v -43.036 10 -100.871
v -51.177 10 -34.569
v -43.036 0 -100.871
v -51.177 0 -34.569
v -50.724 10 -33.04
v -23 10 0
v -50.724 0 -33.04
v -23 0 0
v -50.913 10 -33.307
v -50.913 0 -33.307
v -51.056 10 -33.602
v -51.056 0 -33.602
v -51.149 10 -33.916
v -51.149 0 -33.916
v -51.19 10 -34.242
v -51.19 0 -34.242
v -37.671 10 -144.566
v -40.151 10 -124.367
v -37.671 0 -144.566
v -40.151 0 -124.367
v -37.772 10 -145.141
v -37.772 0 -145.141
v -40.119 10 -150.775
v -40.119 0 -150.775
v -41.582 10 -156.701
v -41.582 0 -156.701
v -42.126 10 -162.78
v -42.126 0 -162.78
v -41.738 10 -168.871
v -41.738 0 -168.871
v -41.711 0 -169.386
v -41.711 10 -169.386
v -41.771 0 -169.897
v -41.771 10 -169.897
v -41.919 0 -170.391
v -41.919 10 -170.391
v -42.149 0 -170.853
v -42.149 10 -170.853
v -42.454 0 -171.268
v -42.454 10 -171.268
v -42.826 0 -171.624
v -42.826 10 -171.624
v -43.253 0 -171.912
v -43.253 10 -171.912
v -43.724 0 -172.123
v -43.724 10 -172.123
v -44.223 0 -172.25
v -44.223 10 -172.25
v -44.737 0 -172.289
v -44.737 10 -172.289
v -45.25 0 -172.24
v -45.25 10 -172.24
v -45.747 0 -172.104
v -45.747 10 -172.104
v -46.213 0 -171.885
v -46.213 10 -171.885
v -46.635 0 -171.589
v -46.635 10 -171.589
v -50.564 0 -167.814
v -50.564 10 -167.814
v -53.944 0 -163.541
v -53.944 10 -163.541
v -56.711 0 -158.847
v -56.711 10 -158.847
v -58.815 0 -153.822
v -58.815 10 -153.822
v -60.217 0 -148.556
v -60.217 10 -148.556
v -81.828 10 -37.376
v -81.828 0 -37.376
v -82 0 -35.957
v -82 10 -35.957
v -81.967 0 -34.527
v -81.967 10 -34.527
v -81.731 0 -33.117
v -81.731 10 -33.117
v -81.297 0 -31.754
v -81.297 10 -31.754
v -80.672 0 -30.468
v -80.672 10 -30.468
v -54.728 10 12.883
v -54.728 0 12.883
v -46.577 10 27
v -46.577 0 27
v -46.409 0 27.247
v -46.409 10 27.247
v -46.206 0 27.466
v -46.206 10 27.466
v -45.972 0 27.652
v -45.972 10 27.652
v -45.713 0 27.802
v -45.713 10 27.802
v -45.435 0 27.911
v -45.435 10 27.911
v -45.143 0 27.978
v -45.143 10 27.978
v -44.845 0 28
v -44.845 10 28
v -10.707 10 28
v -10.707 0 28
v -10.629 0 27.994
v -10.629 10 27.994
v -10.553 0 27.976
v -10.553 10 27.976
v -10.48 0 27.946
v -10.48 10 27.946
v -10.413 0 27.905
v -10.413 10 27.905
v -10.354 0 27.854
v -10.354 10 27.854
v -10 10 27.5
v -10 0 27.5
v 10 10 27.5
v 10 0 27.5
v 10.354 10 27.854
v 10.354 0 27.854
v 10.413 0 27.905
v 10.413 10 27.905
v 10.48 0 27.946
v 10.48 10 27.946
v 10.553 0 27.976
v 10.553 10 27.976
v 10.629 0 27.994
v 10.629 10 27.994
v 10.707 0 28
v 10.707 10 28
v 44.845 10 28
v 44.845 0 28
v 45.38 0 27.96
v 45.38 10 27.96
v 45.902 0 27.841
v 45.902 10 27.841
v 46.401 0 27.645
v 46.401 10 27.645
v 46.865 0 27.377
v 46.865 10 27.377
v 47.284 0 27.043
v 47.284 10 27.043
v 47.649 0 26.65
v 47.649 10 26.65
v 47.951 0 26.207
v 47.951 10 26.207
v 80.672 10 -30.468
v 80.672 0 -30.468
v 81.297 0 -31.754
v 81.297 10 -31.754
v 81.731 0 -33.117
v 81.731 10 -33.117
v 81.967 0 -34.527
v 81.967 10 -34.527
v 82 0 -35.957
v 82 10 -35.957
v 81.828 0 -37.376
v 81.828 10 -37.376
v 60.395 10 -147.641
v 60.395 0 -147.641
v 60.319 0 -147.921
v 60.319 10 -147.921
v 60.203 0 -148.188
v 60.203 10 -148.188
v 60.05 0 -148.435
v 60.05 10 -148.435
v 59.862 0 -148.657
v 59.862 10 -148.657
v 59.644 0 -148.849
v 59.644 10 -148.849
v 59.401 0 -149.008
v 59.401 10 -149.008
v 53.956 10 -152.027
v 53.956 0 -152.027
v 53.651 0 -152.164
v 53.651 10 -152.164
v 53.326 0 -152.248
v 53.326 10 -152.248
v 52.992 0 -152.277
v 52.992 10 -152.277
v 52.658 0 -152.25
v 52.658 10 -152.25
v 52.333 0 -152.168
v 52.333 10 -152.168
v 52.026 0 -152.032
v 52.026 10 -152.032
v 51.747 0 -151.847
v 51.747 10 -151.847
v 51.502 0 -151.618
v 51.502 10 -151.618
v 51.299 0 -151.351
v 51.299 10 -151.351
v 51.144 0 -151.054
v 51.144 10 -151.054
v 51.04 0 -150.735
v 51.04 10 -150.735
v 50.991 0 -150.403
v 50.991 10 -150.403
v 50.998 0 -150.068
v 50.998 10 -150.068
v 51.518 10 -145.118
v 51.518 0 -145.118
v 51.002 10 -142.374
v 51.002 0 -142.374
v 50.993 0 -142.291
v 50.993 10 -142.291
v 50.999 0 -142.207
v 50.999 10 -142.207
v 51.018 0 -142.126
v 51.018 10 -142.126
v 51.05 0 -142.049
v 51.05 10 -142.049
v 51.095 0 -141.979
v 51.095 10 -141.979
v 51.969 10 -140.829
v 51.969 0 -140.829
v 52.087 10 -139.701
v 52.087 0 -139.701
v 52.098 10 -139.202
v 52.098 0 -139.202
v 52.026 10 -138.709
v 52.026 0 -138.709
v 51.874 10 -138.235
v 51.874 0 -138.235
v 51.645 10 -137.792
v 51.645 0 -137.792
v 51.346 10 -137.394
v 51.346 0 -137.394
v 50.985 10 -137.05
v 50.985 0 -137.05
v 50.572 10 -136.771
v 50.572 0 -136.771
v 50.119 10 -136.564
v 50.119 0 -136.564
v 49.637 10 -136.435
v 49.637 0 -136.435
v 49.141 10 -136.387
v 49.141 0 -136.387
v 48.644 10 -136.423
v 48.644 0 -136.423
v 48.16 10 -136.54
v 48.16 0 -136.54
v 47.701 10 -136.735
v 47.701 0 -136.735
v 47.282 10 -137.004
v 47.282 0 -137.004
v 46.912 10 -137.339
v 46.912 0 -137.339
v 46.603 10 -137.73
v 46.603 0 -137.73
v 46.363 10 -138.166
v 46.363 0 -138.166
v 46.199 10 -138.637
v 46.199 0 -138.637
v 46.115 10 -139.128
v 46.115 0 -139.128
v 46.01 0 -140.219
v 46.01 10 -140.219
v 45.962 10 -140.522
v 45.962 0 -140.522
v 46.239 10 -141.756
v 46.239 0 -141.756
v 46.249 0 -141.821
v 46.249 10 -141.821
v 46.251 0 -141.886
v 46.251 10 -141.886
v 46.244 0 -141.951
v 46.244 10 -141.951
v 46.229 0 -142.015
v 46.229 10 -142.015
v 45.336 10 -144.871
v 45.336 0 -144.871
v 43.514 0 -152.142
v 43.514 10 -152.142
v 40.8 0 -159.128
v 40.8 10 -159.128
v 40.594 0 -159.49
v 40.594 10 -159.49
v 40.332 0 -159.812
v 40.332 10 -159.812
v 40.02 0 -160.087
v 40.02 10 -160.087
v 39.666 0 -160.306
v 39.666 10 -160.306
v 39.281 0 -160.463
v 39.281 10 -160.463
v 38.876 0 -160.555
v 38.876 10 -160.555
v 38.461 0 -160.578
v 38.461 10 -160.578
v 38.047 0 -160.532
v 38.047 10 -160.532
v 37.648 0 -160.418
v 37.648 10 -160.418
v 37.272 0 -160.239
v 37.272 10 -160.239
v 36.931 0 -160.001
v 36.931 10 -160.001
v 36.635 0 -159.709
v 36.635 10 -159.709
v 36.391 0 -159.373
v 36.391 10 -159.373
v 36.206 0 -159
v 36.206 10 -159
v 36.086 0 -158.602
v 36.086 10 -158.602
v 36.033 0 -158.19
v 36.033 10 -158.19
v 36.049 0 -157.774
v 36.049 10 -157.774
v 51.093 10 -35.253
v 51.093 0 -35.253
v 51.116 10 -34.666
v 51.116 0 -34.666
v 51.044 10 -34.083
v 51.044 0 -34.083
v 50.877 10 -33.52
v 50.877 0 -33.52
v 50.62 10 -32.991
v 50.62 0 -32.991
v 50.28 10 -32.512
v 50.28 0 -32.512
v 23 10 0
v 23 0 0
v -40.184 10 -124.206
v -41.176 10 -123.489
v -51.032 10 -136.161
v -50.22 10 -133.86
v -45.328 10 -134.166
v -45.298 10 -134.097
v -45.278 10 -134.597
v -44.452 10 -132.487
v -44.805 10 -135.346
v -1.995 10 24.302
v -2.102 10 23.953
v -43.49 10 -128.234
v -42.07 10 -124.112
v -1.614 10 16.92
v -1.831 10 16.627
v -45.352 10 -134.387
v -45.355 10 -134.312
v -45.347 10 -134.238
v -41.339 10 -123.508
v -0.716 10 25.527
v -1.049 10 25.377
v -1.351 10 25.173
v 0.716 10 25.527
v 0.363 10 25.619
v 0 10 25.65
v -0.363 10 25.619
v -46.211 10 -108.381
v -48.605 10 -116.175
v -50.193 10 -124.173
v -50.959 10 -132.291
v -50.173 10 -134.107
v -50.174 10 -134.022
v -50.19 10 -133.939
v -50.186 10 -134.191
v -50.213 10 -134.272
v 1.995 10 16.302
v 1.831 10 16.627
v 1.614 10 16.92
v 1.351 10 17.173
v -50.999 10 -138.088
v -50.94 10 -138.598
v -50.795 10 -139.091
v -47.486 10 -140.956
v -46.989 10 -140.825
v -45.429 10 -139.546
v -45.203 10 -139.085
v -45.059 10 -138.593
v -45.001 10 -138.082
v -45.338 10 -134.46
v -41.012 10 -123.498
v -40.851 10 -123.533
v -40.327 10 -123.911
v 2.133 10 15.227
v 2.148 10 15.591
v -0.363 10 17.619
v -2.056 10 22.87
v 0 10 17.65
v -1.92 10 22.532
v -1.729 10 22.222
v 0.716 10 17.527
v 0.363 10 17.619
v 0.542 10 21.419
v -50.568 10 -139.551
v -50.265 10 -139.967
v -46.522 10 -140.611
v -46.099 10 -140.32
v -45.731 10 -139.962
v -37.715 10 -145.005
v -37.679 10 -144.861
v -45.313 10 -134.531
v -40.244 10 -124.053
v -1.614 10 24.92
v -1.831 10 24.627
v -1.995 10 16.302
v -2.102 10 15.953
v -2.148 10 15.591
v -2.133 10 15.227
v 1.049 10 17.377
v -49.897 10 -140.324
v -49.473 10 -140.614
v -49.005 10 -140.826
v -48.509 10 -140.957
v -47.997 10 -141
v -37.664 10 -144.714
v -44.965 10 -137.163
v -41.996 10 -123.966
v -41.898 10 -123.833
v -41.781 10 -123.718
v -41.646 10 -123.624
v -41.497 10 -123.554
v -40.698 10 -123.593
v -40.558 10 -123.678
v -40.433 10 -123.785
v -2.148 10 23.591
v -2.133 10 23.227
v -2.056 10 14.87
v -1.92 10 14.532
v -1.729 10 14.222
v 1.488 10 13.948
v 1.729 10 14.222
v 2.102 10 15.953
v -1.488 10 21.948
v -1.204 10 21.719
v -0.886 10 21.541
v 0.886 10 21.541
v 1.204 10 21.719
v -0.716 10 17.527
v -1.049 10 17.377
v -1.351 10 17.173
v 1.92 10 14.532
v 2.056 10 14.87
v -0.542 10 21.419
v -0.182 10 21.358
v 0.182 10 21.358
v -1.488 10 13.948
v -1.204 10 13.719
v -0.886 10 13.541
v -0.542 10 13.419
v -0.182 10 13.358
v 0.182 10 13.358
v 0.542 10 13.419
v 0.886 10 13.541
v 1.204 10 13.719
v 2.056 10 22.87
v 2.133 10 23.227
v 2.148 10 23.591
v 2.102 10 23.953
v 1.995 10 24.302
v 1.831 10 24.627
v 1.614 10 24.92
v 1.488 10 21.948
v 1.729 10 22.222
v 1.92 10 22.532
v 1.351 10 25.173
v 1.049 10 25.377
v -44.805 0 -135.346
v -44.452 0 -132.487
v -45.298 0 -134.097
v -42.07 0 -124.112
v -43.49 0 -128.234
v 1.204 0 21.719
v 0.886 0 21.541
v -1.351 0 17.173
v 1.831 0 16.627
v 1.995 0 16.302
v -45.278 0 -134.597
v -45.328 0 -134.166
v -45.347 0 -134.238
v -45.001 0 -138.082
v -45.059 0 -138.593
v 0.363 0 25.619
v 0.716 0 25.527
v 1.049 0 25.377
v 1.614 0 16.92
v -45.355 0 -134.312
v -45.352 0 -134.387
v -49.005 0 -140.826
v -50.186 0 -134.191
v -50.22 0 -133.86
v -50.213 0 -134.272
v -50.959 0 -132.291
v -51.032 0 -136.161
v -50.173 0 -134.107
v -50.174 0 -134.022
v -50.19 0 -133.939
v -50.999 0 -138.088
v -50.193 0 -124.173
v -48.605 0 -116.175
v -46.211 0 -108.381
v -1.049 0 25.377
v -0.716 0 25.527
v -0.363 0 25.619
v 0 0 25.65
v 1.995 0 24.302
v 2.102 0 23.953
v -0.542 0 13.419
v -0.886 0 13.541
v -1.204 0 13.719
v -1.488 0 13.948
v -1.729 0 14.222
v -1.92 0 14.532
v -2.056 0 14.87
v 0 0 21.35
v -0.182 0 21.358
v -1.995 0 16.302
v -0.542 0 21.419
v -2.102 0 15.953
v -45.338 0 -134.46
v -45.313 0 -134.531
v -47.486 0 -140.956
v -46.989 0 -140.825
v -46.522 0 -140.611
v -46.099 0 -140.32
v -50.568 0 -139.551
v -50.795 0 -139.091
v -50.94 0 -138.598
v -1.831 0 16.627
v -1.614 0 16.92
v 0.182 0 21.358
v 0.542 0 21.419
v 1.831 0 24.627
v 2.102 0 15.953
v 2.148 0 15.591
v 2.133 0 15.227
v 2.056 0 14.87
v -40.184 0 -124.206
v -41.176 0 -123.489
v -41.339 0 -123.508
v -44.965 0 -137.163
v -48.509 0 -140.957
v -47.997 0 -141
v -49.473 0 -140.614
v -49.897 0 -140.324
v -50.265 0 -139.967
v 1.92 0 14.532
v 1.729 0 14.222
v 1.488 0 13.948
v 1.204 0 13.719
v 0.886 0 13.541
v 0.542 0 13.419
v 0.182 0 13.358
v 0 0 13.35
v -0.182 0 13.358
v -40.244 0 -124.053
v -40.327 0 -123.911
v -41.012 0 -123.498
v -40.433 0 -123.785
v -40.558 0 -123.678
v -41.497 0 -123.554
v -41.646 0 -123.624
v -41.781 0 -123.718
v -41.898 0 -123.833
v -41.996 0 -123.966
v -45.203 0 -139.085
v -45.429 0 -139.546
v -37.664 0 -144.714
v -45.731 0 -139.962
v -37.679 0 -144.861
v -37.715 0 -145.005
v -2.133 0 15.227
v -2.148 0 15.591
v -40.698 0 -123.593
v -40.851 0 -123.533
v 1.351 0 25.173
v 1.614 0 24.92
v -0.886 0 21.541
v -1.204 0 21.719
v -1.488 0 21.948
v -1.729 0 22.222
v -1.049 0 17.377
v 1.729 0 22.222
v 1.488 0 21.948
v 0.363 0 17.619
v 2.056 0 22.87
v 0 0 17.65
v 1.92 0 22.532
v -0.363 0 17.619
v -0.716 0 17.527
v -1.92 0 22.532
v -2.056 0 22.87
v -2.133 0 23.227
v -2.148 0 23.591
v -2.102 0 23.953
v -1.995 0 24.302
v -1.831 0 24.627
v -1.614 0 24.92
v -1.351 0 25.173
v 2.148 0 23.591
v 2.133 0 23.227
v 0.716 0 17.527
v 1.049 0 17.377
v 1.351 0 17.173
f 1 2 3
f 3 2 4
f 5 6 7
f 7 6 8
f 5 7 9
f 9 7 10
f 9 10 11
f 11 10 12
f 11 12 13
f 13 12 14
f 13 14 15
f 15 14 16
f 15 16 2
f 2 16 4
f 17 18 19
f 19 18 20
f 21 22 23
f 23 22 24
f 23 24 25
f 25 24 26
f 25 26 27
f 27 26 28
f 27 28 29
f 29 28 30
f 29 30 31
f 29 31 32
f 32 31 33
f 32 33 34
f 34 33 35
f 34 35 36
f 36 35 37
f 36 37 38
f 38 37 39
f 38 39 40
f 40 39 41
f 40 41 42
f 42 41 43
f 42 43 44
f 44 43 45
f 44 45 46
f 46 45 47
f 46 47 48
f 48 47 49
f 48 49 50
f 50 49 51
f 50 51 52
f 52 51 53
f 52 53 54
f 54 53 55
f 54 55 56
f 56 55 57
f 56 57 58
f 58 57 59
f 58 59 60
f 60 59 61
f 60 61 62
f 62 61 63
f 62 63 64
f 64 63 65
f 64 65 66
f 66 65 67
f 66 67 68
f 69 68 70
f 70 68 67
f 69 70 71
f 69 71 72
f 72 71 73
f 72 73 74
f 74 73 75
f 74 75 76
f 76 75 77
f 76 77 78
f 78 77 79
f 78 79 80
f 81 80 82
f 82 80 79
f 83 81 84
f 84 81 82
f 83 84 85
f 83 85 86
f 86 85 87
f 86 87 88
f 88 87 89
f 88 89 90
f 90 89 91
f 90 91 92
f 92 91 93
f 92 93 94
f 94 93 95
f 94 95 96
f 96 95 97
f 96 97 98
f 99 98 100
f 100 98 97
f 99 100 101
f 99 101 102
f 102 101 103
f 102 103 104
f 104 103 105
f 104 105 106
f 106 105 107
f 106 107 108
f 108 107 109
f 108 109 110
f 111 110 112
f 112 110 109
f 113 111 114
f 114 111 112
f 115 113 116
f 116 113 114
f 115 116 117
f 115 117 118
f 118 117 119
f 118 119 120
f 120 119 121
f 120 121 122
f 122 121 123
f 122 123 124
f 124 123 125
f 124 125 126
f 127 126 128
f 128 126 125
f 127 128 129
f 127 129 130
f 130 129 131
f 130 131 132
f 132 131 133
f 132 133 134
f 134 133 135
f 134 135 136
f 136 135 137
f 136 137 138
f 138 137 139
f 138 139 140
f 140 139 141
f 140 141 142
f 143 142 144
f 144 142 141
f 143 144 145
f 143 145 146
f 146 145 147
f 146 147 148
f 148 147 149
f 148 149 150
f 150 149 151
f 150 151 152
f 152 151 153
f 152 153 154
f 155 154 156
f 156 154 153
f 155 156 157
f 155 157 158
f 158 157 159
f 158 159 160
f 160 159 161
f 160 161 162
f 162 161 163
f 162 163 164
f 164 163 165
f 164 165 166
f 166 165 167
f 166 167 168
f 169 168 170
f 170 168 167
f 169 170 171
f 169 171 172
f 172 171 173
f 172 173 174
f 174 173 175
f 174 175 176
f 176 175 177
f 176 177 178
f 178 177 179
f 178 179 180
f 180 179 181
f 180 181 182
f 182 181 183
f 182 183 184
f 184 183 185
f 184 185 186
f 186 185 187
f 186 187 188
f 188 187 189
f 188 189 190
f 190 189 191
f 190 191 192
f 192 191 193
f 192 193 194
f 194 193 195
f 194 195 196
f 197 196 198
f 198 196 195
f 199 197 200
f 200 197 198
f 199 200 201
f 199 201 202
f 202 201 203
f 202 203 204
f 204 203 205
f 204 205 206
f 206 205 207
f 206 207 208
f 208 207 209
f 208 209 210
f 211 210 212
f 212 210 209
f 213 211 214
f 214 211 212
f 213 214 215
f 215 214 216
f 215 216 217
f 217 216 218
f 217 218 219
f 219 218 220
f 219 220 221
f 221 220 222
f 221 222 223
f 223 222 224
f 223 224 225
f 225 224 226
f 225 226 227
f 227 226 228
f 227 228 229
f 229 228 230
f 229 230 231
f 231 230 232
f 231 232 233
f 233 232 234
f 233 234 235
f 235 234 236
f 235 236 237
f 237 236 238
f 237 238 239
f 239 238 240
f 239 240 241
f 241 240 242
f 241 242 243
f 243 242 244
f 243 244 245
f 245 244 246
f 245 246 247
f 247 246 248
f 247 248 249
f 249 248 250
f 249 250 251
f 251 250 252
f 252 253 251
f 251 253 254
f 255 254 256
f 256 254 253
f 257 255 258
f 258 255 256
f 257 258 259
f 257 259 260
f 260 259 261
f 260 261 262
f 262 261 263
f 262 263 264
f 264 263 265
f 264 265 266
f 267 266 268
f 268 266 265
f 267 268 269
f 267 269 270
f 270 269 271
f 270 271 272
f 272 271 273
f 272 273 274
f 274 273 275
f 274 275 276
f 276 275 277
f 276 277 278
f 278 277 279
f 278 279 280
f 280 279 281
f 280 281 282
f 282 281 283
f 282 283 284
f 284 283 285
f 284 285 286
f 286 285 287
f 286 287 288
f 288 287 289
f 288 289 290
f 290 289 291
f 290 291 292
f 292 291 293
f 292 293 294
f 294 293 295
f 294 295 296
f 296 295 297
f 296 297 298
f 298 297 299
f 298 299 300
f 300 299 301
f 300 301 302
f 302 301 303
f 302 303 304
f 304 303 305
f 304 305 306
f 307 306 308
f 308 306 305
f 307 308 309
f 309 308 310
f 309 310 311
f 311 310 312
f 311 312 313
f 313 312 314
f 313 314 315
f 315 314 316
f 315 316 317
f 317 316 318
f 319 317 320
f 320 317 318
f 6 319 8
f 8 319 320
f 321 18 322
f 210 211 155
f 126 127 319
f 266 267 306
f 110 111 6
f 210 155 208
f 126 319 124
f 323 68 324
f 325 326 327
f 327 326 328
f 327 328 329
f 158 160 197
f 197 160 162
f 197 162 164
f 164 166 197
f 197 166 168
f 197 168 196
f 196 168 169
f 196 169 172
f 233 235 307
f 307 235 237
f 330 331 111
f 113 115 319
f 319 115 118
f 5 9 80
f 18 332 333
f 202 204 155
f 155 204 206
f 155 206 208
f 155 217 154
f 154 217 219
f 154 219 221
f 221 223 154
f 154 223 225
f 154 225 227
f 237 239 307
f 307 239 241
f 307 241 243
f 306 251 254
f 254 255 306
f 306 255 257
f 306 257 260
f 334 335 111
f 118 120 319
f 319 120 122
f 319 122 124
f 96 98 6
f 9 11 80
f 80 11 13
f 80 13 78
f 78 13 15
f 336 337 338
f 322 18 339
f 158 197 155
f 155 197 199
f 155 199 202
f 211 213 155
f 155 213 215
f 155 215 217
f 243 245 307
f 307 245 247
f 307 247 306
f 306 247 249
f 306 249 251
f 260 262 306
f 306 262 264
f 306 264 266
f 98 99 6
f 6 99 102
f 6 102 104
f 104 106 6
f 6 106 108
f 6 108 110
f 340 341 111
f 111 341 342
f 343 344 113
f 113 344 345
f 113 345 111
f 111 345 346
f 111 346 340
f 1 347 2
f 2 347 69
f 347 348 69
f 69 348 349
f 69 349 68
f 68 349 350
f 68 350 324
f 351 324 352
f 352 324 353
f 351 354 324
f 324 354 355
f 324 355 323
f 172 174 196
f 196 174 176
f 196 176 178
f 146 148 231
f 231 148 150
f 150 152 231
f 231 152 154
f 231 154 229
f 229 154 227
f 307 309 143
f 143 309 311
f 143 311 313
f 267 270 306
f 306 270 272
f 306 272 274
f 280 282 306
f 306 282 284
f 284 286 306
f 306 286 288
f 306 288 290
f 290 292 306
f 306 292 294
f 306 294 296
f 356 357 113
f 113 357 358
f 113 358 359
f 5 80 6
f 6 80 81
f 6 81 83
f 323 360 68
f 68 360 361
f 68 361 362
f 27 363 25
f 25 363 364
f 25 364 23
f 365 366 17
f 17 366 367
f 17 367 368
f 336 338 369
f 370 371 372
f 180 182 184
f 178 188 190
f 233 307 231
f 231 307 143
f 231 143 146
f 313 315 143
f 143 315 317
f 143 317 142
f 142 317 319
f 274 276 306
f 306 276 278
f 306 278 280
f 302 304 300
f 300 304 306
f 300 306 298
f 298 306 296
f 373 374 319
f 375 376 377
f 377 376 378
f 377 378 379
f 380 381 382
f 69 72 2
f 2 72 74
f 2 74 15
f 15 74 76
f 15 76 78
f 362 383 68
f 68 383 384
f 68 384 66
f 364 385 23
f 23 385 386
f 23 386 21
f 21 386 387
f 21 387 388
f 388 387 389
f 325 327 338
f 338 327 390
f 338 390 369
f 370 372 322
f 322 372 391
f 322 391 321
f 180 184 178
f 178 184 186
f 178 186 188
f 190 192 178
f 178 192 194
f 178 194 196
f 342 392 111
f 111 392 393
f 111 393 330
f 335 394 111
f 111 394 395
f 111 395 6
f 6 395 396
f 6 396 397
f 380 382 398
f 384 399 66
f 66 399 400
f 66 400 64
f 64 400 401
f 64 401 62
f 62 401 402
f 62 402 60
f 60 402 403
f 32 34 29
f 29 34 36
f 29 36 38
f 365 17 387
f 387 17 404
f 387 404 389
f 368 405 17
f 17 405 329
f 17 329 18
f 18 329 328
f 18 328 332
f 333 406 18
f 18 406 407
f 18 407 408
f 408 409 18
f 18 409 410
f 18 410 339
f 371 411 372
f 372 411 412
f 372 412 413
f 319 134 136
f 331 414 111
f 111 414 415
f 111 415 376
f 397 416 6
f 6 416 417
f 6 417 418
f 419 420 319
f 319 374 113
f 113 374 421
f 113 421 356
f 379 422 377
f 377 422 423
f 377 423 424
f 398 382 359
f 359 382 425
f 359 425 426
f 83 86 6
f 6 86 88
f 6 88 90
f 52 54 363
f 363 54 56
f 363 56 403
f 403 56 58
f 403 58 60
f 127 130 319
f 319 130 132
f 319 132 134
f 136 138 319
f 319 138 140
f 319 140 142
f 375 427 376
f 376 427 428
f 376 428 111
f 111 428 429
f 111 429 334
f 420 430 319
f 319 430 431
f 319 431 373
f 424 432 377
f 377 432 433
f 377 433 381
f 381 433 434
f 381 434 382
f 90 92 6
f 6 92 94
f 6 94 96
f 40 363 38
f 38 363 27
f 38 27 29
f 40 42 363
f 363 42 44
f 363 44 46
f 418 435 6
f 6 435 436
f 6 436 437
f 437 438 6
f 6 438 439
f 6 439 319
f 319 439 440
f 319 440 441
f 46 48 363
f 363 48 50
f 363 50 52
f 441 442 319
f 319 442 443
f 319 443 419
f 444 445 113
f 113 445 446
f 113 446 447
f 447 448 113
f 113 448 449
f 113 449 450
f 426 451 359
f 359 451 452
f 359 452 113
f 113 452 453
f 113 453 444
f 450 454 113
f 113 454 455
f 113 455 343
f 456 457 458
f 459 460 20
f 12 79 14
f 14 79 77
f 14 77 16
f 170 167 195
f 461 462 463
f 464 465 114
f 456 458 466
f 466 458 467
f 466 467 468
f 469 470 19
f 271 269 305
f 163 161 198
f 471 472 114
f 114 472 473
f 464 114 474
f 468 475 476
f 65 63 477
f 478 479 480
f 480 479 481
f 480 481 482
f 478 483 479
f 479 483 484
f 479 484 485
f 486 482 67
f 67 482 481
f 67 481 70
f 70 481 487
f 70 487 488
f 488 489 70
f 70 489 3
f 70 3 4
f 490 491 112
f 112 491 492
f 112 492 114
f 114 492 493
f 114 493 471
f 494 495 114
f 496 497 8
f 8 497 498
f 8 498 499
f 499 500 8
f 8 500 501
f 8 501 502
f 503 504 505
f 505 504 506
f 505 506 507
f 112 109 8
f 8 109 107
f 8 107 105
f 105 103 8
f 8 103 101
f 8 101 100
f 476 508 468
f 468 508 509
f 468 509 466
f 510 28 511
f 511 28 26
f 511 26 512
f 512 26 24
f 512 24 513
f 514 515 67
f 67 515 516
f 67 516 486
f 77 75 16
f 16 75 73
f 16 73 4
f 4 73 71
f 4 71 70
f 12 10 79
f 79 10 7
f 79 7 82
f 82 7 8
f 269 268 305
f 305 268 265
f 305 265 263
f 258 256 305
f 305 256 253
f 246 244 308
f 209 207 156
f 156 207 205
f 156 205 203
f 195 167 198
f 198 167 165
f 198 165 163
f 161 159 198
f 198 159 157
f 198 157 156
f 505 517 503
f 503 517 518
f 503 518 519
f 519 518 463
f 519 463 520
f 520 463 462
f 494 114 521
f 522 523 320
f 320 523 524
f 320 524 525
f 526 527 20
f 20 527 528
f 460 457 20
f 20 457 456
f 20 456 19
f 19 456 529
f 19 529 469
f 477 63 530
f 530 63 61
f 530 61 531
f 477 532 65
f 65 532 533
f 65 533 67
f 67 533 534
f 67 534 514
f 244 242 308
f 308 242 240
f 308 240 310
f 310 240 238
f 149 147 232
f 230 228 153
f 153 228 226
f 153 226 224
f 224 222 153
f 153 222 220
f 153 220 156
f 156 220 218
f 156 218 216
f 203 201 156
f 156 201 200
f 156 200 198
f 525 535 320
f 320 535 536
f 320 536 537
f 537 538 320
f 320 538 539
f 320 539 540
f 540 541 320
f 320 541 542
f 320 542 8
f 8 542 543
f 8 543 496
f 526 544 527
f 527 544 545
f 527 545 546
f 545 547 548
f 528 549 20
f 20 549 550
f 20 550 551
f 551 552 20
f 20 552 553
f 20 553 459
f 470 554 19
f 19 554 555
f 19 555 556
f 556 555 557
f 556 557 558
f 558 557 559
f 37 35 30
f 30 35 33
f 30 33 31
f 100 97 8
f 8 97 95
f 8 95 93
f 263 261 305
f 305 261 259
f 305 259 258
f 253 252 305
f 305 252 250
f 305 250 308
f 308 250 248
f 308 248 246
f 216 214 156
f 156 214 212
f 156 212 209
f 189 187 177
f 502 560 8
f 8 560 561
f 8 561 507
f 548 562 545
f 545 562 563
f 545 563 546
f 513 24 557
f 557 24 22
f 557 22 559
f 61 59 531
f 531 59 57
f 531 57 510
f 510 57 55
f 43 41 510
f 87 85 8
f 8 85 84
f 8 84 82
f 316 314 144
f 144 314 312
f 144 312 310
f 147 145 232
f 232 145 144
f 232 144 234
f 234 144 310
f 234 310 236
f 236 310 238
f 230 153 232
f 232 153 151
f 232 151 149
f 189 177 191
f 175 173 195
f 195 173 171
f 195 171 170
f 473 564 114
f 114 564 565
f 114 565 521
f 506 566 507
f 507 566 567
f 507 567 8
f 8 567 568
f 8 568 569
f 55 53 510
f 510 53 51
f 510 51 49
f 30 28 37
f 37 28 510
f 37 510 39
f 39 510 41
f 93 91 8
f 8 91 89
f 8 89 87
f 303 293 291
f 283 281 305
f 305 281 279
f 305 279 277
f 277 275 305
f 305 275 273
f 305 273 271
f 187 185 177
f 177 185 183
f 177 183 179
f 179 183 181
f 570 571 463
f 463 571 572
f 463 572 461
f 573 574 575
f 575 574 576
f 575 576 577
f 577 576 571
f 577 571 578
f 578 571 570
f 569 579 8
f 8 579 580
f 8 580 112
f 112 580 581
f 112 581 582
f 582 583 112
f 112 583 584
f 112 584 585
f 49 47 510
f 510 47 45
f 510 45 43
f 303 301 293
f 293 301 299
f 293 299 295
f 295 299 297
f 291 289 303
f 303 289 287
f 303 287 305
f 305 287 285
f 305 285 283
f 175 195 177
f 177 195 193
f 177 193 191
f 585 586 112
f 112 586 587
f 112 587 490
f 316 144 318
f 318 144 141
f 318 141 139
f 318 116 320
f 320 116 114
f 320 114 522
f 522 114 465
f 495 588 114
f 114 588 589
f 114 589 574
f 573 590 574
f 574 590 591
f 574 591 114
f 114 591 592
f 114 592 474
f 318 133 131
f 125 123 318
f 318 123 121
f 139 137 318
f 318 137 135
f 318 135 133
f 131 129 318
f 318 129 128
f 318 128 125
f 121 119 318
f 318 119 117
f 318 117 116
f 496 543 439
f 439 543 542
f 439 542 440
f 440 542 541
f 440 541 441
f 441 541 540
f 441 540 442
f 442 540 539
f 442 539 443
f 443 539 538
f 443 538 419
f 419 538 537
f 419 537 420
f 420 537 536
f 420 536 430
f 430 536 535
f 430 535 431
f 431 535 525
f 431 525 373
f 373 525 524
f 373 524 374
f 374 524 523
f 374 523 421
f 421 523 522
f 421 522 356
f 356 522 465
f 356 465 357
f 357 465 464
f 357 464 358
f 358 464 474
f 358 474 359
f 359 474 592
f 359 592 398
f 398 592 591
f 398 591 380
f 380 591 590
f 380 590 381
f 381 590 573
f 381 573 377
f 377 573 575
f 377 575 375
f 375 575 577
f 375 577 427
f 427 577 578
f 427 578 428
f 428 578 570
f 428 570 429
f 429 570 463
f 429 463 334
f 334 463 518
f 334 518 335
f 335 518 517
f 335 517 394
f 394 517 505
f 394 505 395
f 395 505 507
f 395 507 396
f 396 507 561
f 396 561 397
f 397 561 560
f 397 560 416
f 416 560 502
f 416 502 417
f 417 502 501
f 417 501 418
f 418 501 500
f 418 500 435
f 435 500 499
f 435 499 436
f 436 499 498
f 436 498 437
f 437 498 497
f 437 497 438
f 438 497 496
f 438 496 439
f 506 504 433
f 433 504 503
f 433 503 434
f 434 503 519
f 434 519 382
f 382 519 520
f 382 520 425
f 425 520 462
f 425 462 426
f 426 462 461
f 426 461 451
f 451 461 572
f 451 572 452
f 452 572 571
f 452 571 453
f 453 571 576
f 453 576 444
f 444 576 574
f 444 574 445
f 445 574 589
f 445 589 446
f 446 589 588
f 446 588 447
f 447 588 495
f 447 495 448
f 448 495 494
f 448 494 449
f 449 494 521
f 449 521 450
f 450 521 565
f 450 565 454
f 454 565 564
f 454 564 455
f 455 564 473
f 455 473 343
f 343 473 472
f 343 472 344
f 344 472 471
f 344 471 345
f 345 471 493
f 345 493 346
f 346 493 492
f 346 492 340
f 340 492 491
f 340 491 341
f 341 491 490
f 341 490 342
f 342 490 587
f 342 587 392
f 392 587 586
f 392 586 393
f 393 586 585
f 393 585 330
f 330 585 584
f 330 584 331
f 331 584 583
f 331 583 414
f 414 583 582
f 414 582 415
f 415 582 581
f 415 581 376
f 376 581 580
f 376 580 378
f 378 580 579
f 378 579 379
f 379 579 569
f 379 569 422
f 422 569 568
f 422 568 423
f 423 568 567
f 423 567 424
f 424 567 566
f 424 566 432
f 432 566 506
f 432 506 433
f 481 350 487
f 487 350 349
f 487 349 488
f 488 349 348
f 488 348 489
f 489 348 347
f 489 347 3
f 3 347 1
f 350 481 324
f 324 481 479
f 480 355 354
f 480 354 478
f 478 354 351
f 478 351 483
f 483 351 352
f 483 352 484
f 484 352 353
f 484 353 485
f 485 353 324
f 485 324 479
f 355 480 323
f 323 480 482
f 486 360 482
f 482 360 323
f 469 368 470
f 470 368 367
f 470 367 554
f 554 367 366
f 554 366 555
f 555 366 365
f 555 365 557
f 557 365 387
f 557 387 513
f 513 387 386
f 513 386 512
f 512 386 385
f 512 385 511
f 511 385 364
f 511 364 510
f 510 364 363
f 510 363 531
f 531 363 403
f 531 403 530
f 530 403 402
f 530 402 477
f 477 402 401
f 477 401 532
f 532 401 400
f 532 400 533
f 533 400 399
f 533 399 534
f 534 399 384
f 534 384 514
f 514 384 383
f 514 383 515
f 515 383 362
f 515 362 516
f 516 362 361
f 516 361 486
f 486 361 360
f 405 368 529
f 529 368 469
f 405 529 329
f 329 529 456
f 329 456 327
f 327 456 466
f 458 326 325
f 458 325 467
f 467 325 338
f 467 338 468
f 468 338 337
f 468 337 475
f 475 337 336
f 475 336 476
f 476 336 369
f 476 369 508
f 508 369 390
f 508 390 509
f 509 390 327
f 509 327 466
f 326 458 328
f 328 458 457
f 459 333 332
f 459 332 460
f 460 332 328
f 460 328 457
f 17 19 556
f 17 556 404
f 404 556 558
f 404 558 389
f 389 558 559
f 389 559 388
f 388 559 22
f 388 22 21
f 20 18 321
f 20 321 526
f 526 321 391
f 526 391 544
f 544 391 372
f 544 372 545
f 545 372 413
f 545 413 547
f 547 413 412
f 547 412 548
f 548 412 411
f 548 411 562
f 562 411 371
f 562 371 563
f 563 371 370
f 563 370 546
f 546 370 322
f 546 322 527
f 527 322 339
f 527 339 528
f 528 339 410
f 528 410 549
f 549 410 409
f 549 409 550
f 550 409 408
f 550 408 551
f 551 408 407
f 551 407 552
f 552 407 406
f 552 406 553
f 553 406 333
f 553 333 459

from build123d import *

# Parameters (mm, degrees)
EXTRUDE_1_DEPTH     = 10
CUT_EXTRUDE_1_REACH = 193.075
SKETCH_2_R          = 2.15
FILLET_1_R          = 1


with BuildPart() as part:
    # 草图1 → 凸台-拉伸1 (new body)
    with BuildSketch(Plane(origin=(0, 0, 0), x_dir=(1, 0, 0), z_dir=(0, 1, 0))):
        with BuildLine():
            Line((-23, 0), (23, 0))
            Line((23, 0), (50.280437597, 32.511559514))
            ThreePointArc((50.280437597, 32.511559514), (50.971701439, 33.798064087), (51.092639409, 35.25350688))
            Line((51.092639409, 35.25350688), (36.048986901, 157.774224452))
            ThreePointArc((36.048986901, 157.774224452), (37.845160212, 160.483167311), (40.799539436, 159.128083042))
            ThreePointArc((40.799539436, 159.128083042), (43.514050375, 152.141566893), (45.33631399, 144.871124481))
            Line((45.33631399, 144.871124481), (46.228669547, 142.01495601))
            ThreePointArc((46.228669547, 142.01495601), (46.250999528, 141.886354071), (46.239284003, 141.756354712))
            Line((46.239284003, 141.756354712), (45.962164319, 140.52161209))
            Line((45.962164319, 140.52161209), (46.010409332, 140.218889241))
            ThreePointArc((46.010409332, 140.218889241), (46.065188715, 139.673724891), (46.11498752, 139.128083042))
            ThreePointArc((46.11498752, 139.128083042), (49.390100294, 136.400799361), (52.087350199, 139.700690708))
            Line((52.087350199, 139.700690708), (51.968804209, 140.828580455))
            Line((51.968804209, 140.828580455), (51.095150293, 141.978953599))
            ThreePointArc((51.095150293, 141.978953599), (51.00671283, 142.166476528), (51.001947429, 142.37375249))
            Line((51.001947429, 142.37375249), (51.517960099, 145.118075635))
            Line((51.517960099, 145.118075635), (50.997668008, 150.068324212))
            ThreePointArc((50.997668008, 150.068324212), (51.882837828, 151.945152782), (53.956331039, 152.026620552))
            Line((53.956331039, 152.026620552), (59.401206432, 149.008476838))
            ThreePointArc((59.401206432, 149.008476838), (60.04962118, 148.434807928), (60.394841558, 147.640855414))
            Line((60.394841558, 147.640855414), (81.828137025, 37.376109146))
            ThreePointArc((81.828137025, 37.376109146), (81.874721206, 33.817543133), (80.672119228, 30.468019192))
            Line((80.672119228, 30.468019192), (47.950739183, -26.207073541))
            ThreePointArc((47.950739183, -26.207073541), (46.63822592, -27.519586803), (44.845299462, -28))
            Line((44.845299462, -28), (10.707106781, -28))
            ThreePointArc((10.707106781, -28), (10.515765065, -27.961939766), (10.353553391, -27.853553391))
            Line((10.353553391, -27.853553391), (10, -27.5))
            Line((10, -27.5), (-10, -27.5))
            Line((-10, -27.5), (-10.353553391, -27.853553391))
            ThreePointArc((-10.353553391, -27.853553391), (-10.515765065, -27.961939766), (-10.707106781, -28))
            Line((-10.707106781, -28), (-44.845299462, -28))
            ThreePointArc((-44.845299462, -28), (-45.845299462, -27.732050808), (-46.577350269, -27))
            Line((-46.577350269, -27), (-54.72793721, -12.882769307))
            Line((-54.72793721, -12.882769307), (-80.672119228, 30.468019192))
            ThreePointArc((-80.672119228, 30.468019192), (-81.874721206, 33.817543133), (-81.828137025, 37.376109146))
            Line((-81.828137025, 37.376109146), (-60.216890167, 148.556335961))
            ThreePointArc((-60.216890167, 148.556335961), (-55.407693084, 161.241250242), (-46.635305706, 171.589228142))
            ThreePointArc((-46.635305706, 171.589228142), (-43.253111024, 171.912359616), (-41.738335903, 168.871124481))
            ThreePointArc((-41.738335903, 168.871124481), (-41.556322934, 156.551185491), (-37.633288365, 144.871124481))
            Line((-37.633288365, 144.871124481), (-51.176674229, 34.569098196))
            ThreePointArc((-51.176674229, 34.569098196), (-51.109221395, 33.75732882), (-50.723670812, 33.03978429))
            Line((-50.723670812, 33.03978429), (-23, 0))
        make_face()
    extrude(amount=EXTRUDE_1_DEPTH)

    # 草图2 → 切除-拉伸1 (cut, up to next)
    with BuildSketch(Plane(origin=(0, 10, 0), x_dir=(1, 0, 0), z_dir=(0, 1, 0)), mode=Mode.PRIVATE) as cut_extrude_1_sk1:
        with Locations(Location((0, -23.5, 0), (0, 0, 270))):
            Circle(SKETCH_2_R)
    cut_extrude_1_tool1 = extrude(cut_extrude_1_sk1.sketch, amount=-CUT_EXTRUDE_1_REACH, mode=Mode.PRIVATE) & part.part
    # 草图2 → 切除-拉伸1 (cut, up to next)
    with BuildSketch(Plane(origin=(0, 10, 0), x_dir=(1, 0, 0), z_dir=(0, 1, 0)), mode=Mode.PRIVATE) as cut_extrude_1_sk2:
        with Locations(Location((0, -15.5, 0), (0, 0, 270))):
            Circle(SKETCH_2_R)
    cut_extrude_1_tool2 = extrude(cut_extrude_1_sk2.sketch, amount=-CUT_EXTRUDE_1_REACH, mode=Mode.PRIVATE) & part.part
    # 草图2 → 切除-拉伸1 (cut, up to next)
    with BuildSketch(Plane(origin=(0, 10, 0), x_dir=(1, 0, 0), z_dir=(0, 1, 0)), mode=Mode.PRIVATE) as cut_extrude_1_sk3:
        with BuildLine():
            Line((-44.965311668, 137.162976975), (-44.804514377, 135.345756555))
            Line((-44.804514377, 135.345756555), (-45.277917872, 134.596824083))
            ThreePointArc((-45.277917872, 134.596824083), (-45.354871903, 134.349709989), (-45.297959002, 134.097225891))
            Line((-45.297959002, 134.097225891), (-44.452214101, 132.486513242))
            ThreePointArc((-44.452214101, 132.486513242), (-42.963225579, 126.529787442), (-40.580117827, 120.871124481))
            Line((-40.580117827, 120.871124481), (-43.035809045, 100.871124481))
            ThreePointArc((-43.035809045, 100.871124481), (-48.604809202, 116.175489254), (-50.95898566, 132.29055044))
            Line((-50.95898566, 132.29055044), (-50.219666113, 133.859541555))
            ThreePointArc((-50.219666113, 133.859541555), (-50.172028753, 134.06484851), (-50.213221053, 134.271545048))
            Line((-50.213221053, 134.271545048), (-51.032139087, 136.160541322))
            ThreePointArc((-51.032139087, 136.160541322), (-51.021228549, 137.124454778), (-50.998704156, 138.08816679))
            ThreePointArc((-50.998704156, 138.08816679), (-47.997070546, 140.99999857), (-45.001129375, 138.082310248))
            ThreePointArc((-45.001129375, 138.082310248), (-44.985863781, 137.622540629), (-44.965311668, 137.162976975))
        make_face()
    cut_extrude_1_tool3 = extrude(cut_extrude_1_sk3.sketch, amount=-CUT_EXTRUDE_1_REACH, mode=Mode.PRIVATE) & part.part
    add(cut_extrude_1_tool1.solids().sort_by_distance((0, 10, 23.5))[0], mode=Mode.SUBTRACT)
    add(cut_extrude_1_tool2.solids().sort_by_distance((0, 10, 15.5))[0], mode=Mode.SUBTRACT)
    add(cut_extrude_1_tool3.solids().sort_by_distance((-45.998672, 10, -122.997327))[0], mode=Mode.SUBTRACT)

    # 圆角1
    fillet_1_edges = [part.edges().sort_by_distance(p)[0] for p in [
        (-40.580117827, 5, -120.871124481),
        (-37.633288365, 5, -144.871124481),
    ]]
    fillet(fillet_1_edges, radius=FILLET_1_R)


solid = part.part
